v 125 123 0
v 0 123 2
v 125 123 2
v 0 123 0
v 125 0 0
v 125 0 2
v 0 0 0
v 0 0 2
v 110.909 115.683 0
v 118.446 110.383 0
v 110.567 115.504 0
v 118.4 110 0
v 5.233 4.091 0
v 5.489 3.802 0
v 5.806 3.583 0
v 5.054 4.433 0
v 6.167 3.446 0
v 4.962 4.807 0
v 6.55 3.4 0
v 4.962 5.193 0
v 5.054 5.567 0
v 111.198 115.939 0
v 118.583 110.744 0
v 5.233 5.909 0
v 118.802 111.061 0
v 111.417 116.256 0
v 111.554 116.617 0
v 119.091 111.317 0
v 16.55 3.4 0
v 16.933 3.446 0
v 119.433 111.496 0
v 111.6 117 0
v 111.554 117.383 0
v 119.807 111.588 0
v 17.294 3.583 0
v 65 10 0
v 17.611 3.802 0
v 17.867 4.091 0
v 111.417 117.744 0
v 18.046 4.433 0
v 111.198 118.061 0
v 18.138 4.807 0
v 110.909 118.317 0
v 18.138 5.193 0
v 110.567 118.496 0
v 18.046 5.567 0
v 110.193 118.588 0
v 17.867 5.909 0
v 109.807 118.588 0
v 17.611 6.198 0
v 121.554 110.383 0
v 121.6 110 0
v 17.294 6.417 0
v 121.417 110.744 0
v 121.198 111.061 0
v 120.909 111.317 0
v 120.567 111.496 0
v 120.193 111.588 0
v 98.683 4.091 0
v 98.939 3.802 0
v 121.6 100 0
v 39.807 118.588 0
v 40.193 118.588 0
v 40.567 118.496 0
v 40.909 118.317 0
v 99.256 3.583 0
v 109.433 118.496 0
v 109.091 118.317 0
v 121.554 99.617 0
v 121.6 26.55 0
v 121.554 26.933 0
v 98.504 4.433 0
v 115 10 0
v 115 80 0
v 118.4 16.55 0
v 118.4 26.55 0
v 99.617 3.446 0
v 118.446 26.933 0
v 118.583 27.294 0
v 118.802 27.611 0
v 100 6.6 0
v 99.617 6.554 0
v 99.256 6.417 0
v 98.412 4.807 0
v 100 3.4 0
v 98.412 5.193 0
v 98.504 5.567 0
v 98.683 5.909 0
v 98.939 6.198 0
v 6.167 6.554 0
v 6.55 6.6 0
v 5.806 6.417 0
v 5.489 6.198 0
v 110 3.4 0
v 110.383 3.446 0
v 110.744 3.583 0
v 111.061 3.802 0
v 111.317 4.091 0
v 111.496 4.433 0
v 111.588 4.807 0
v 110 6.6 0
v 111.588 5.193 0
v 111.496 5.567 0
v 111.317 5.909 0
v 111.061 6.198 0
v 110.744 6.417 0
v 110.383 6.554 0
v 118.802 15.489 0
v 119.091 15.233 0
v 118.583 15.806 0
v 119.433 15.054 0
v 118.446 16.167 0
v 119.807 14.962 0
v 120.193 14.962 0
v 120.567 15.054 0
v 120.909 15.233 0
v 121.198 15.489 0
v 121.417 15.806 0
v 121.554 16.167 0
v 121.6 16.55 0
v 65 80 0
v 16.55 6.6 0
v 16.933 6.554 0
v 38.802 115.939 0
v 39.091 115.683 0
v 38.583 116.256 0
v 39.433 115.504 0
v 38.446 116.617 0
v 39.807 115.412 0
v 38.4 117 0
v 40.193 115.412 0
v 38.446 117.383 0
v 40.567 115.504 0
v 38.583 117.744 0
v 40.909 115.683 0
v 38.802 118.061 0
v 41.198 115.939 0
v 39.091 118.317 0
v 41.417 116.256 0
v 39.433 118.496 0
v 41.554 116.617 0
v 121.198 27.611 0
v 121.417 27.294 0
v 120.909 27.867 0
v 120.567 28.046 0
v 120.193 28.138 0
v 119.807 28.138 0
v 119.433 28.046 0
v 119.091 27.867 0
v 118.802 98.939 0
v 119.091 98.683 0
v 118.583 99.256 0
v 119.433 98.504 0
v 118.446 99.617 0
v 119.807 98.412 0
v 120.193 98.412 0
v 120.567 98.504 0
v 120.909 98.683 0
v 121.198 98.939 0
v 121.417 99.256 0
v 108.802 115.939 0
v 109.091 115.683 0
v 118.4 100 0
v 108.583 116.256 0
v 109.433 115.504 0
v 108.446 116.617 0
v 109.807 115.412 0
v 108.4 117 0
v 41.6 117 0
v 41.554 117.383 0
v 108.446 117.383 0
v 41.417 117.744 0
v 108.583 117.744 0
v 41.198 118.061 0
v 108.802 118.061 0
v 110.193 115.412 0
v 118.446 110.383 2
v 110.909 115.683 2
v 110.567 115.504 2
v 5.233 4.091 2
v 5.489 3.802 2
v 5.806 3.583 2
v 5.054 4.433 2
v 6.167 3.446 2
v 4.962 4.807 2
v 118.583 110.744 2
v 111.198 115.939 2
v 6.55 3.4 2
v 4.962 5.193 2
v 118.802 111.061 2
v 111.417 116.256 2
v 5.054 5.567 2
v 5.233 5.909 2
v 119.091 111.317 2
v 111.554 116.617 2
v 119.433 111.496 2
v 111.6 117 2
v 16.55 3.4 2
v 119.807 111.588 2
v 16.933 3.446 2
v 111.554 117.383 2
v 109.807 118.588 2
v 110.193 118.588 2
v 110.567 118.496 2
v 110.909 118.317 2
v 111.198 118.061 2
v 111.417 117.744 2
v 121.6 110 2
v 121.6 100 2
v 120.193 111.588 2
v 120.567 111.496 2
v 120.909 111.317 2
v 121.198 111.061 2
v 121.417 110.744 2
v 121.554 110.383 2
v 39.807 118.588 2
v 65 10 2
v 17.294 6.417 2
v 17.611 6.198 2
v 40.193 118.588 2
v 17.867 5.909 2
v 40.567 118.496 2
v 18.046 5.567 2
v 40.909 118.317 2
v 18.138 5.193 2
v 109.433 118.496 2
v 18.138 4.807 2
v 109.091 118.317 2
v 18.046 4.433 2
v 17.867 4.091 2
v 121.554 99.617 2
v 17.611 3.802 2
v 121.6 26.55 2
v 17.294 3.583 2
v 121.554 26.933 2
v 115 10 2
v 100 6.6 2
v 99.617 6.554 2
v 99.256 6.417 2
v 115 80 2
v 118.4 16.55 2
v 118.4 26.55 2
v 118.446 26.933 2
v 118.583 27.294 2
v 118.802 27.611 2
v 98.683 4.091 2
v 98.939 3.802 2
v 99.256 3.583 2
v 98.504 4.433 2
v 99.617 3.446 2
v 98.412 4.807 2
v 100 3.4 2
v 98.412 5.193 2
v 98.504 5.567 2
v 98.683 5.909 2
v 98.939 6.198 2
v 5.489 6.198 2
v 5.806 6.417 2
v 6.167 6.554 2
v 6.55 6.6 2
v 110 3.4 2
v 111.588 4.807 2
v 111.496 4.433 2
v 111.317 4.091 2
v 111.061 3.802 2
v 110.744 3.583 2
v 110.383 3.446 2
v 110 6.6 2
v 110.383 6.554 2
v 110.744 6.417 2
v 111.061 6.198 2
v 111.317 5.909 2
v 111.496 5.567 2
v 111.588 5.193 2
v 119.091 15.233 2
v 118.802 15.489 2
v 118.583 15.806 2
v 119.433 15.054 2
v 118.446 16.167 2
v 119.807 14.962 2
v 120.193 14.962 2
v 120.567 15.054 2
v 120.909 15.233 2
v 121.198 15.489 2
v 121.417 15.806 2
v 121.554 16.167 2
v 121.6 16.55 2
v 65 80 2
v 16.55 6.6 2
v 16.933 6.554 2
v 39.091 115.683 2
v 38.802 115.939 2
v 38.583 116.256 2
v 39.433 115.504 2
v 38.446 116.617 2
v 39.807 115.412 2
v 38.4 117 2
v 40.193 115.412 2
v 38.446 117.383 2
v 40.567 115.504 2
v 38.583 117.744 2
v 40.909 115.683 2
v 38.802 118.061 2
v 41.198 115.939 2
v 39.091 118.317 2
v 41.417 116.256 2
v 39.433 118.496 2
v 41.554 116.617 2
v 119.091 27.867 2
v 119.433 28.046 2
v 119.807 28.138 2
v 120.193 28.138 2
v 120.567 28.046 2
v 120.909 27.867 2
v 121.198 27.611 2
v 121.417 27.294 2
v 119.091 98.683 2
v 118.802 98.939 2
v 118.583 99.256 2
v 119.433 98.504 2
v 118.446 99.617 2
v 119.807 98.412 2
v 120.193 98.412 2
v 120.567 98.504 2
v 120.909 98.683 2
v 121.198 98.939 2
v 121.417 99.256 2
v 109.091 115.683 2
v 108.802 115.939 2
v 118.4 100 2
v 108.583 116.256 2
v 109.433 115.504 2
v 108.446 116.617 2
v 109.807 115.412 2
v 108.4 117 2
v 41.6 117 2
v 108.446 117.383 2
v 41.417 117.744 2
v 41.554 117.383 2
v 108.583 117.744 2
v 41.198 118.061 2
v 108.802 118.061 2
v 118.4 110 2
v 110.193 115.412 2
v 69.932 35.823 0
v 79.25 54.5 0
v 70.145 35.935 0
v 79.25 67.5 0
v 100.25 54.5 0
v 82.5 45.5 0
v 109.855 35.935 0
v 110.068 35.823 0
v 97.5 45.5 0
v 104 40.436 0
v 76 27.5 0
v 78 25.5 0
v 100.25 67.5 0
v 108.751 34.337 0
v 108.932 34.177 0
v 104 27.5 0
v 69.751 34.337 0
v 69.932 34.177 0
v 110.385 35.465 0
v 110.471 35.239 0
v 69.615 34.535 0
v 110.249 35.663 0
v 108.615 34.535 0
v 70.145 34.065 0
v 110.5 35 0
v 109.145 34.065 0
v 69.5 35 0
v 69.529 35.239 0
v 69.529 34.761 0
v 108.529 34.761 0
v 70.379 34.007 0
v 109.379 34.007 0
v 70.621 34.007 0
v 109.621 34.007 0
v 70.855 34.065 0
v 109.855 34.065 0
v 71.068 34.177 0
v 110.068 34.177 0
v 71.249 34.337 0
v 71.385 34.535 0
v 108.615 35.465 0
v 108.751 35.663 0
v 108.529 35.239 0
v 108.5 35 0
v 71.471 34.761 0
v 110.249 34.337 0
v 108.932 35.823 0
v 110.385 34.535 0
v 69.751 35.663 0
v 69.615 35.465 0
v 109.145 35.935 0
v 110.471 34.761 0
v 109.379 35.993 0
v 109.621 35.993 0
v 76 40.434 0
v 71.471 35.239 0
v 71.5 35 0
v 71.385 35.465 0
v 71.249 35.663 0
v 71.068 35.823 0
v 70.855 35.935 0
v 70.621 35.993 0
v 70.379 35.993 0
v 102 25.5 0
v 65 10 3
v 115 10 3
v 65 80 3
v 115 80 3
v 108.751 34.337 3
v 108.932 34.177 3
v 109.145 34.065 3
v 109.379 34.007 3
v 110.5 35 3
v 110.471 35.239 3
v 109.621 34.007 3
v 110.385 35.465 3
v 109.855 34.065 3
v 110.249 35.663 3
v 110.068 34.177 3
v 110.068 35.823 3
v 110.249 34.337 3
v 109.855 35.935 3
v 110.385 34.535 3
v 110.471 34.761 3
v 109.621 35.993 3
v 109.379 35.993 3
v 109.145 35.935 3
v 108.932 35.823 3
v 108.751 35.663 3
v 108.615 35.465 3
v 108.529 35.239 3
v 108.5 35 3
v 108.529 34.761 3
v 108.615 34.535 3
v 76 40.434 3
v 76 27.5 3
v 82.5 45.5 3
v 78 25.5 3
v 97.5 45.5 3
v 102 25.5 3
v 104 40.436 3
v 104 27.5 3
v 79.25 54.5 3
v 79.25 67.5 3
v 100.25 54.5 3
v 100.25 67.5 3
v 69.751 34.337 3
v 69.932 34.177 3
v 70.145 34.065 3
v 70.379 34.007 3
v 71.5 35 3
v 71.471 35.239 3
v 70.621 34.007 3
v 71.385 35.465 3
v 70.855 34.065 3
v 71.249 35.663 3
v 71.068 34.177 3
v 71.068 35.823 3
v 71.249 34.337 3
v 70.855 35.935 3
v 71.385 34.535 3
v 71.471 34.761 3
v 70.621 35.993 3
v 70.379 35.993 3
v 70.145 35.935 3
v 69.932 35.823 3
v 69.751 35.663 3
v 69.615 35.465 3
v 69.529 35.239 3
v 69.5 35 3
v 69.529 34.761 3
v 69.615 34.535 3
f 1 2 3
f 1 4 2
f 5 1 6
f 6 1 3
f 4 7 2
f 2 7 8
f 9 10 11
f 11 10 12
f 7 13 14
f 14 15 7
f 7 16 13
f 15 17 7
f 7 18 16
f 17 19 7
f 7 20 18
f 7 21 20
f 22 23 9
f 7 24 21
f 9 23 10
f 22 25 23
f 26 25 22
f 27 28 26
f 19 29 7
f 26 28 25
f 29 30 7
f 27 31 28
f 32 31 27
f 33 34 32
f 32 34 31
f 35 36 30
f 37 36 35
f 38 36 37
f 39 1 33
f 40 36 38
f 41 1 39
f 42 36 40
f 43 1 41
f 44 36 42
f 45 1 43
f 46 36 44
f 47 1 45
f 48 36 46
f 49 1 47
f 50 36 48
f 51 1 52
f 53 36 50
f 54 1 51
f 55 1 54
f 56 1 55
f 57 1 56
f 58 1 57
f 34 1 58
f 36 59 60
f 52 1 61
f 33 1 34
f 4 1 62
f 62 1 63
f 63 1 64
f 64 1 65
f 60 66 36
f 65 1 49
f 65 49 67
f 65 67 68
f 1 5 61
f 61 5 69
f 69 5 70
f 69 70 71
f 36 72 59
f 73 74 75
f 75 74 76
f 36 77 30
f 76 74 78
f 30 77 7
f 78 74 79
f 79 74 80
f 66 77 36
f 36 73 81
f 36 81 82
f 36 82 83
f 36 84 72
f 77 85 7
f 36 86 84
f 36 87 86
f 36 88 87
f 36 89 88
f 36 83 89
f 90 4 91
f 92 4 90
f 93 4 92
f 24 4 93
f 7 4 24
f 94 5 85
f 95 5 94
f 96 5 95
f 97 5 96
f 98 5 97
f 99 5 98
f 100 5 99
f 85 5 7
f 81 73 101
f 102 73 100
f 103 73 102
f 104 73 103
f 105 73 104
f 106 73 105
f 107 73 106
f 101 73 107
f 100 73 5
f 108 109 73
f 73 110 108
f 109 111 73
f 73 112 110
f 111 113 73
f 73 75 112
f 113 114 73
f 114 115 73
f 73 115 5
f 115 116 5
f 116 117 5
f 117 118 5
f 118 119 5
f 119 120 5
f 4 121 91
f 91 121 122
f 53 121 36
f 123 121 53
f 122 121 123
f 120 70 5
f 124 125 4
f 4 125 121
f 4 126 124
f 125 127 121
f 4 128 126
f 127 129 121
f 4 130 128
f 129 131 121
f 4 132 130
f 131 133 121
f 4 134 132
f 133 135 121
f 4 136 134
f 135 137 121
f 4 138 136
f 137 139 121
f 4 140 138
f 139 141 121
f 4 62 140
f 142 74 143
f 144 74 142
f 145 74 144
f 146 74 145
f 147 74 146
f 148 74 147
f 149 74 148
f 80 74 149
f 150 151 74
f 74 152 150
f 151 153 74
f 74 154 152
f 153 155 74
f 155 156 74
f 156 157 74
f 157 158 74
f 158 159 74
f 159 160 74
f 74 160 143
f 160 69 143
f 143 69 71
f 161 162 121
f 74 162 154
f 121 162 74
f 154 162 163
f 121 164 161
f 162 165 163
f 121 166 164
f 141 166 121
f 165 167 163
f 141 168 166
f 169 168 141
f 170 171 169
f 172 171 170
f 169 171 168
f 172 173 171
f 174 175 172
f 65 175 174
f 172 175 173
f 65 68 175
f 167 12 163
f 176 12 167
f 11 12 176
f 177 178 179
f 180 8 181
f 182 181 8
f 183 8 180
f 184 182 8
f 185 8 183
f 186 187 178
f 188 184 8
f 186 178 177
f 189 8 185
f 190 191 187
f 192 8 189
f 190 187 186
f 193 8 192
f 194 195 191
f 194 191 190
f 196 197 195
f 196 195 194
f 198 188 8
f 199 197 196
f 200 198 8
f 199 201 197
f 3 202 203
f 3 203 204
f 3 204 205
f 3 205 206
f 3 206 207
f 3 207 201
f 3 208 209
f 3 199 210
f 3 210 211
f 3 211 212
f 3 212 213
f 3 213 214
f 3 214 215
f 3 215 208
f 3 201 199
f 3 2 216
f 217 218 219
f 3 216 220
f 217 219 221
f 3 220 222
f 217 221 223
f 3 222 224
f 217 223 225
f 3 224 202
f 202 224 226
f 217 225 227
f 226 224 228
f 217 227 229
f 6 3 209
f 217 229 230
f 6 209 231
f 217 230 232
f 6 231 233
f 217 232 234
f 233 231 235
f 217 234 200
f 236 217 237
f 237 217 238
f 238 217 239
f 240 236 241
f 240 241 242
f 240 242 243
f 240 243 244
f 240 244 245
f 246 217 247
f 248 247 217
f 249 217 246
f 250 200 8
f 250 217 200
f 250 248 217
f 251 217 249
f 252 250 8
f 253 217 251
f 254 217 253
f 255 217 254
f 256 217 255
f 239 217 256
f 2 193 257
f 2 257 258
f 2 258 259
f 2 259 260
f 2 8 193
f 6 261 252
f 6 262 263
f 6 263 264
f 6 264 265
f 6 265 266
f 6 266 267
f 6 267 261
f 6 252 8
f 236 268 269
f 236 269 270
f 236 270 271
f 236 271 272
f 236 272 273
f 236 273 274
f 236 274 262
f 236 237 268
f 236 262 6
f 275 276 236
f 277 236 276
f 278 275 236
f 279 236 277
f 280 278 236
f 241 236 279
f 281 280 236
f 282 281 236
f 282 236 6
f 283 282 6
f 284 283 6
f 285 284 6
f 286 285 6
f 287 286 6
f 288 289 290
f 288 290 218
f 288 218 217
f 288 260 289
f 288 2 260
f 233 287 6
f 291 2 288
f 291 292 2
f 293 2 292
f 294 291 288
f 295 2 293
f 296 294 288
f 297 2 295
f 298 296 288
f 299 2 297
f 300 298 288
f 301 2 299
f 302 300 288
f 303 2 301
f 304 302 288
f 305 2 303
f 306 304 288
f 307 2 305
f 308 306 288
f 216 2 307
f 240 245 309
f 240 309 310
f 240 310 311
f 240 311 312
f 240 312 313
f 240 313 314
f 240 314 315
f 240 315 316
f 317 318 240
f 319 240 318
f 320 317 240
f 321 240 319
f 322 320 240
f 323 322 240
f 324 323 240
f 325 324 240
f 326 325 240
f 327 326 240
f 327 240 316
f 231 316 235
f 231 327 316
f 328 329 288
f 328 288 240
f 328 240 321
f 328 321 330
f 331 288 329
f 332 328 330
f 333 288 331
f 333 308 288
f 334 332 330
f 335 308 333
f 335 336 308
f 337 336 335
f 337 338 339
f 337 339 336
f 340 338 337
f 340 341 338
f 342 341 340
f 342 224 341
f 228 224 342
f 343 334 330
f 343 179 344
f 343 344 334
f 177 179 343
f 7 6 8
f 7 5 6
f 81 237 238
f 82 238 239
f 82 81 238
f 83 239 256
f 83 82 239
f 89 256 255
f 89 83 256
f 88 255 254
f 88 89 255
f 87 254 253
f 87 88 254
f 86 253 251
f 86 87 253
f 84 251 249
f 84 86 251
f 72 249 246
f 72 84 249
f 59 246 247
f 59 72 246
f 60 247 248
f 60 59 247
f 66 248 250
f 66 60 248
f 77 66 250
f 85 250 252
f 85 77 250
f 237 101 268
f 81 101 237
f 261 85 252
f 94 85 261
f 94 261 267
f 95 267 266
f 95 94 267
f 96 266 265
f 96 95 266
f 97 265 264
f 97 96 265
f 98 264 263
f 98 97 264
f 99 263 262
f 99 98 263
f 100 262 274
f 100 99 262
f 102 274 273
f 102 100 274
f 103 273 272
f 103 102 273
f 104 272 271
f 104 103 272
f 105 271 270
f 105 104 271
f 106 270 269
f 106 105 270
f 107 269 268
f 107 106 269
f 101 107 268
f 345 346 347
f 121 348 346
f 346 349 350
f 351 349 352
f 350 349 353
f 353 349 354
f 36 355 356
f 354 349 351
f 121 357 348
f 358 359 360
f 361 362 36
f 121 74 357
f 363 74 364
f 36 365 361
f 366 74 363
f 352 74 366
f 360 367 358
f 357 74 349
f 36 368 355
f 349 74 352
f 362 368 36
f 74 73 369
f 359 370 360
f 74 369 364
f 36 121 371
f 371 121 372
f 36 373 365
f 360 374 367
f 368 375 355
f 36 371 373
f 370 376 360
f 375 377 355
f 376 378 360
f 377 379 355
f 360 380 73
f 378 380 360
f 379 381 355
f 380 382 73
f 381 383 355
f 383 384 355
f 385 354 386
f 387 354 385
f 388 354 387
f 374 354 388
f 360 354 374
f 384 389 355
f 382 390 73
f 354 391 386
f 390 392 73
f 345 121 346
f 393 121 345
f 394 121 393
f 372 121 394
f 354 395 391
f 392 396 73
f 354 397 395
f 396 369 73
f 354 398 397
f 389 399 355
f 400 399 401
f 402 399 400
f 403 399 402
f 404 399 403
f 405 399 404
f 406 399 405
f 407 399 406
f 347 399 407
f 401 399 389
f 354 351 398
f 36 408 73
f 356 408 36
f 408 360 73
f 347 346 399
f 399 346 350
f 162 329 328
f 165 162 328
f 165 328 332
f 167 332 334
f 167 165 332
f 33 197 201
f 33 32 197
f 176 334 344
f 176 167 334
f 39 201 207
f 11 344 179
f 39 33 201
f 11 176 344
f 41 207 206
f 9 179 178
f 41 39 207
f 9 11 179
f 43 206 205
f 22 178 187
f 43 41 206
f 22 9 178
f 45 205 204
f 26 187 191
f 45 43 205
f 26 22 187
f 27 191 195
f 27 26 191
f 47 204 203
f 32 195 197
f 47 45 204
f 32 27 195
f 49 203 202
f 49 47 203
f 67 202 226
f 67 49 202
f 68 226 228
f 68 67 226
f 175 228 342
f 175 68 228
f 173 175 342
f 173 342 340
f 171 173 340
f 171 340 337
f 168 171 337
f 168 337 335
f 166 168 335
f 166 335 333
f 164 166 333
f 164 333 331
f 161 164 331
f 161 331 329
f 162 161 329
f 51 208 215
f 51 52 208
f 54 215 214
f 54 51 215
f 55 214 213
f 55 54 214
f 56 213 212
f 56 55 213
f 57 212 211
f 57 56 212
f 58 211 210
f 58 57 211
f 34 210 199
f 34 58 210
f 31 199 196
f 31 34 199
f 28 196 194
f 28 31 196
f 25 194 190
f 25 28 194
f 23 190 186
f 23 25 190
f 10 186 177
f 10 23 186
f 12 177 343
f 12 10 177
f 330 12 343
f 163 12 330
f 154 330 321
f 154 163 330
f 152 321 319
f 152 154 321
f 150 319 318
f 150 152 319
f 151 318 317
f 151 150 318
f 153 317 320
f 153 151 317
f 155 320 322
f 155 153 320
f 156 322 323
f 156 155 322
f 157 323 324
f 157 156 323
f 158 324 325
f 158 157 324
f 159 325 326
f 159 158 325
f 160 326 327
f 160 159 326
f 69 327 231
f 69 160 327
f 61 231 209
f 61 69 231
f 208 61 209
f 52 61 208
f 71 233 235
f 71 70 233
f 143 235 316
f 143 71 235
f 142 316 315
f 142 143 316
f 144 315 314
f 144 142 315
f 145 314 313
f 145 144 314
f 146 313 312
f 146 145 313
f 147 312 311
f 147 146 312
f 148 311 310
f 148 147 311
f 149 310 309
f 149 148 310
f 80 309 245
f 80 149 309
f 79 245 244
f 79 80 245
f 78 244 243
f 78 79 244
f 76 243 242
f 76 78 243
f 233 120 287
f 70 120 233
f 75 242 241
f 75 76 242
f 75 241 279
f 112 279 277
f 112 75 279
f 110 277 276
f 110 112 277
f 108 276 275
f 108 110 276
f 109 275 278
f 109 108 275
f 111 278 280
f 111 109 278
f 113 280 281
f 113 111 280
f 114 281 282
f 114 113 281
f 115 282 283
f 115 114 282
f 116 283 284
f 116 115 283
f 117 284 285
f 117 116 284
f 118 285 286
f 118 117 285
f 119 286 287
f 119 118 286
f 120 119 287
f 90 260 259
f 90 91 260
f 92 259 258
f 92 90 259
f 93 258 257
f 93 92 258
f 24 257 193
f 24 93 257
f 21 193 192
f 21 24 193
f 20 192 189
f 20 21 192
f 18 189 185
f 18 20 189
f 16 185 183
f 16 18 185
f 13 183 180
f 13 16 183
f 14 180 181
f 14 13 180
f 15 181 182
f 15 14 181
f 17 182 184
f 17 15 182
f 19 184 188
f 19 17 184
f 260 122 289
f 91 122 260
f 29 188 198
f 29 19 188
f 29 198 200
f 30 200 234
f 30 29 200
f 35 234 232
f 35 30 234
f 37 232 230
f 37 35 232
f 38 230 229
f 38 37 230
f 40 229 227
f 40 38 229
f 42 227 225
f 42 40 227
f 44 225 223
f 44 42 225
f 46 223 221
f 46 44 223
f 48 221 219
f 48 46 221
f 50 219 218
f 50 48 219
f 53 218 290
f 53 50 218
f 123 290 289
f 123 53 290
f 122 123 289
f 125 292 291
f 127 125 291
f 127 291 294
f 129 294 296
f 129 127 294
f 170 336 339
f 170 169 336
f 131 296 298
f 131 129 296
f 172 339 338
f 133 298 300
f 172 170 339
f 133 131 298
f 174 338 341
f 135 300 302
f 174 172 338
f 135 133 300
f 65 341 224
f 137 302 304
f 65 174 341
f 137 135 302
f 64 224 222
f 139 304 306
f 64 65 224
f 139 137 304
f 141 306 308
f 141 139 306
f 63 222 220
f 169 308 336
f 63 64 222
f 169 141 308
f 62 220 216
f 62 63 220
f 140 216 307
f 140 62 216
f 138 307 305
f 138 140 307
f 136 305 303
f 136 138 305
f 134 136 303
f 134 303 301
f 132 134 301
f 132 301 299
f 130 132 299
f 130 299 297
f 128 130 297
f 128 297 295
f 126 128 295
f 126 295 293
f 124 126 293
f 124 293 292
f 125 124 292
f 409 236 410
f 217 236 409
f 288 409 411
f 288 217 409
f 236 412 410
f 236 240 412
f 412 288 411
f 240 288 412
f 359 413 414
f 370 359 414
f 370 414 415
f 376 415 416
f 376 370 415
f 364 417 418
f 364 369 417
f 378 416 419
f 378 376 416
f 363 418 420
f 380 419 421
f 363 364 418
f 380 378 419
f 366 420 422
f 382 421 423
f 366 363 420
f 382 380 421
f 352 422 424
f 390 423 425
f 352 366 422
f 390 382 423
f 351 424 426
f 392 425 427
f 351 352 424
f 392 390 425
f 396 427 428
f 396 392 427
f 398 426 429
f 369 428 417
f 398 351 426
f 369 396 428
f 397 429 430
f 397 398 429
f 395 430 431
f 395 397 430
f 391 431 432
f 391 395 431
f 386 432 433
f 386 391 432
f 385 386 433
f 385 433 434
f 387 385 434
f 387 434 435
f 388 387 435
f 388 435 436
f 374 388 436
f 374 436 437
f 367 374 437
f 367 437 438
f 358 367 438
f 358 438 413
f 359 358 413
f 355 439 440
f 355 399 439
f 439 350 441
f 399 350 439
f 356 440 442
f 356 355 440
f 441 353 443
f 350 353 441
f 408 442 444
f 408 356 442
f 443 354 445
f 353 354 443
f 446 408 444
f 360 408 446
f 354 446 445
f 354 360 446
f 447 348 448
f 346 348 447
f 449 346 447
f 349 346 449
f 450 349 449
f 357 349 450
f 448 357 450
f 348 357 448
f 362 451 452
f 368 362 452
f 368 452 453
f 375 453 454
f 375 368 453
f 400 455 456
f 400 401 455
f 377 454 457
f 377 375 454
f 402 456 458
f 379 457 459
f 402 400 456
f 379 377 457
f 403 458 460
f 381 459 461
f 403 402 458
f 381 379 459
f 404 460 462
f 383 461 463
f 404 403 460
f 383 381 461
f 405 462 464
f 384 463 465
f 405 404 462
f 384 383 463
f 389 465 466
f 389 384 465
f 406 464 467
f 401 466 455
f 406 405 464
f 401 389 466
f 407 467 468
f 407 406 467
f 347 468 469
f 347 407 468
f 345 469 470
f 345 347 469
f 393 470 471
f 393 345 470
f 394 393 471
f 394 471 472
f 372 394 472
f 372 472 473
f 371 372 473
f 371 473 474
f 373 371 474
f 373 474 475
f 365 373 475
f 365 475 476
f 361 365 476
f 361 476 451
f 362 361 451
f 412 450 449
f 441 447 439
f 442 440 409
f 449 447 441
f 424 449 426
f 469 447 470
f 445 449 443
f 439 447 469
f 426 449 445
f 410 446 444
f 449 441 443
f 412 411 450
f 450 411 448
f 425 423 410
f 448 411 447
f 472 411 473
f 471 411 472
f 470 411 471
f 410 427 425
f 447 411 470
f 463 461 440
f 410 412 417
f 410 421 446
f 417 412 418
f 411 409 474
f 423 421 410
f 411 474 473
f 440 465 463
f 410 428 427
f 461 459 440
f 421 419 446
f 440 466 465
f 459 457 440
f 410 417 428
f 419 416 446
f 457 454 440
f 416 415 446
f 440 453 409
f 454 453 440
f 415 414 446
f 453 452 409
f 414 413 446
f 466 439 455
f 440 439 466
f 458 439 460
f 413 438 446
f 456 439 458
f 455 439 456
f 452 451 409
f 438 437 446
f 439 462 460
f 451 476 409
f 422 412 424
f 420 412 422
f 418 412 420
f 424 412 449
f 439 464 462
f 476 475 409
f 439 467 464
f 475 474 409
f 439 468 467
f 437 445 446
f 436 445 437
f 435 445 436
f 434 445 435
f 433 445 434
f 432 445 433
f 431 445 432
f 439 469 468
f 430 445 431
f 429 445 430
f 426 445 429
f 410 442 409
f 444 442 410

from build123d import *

# Parameters (mm, degrees)
SKETCH_W        = 125
SKETCH_H        = 123
PAD_DEPTH       = 2
SKETCH001_W     = 50
SKETCH001_H     = 70
PAD001_DEPTH    = 3
POCKET_DEPTH    = 3.001
POCKET001_DEPTH = 3.001
SKETCH004_R     = 1.6
POCKET002_DEPTH = 3.001
SKETCH005_R     = 1.6
POCKET003_DEPTH = 3.001
POCKET004_DEPTH = 3.001
SKETCH007_R     = 1
POCKET005_DEPTH = 3.001
SKETCH008_R     = 1
POCKET006_DEPTH = 3.001
SKETCH009_W     = 21
SKETCH009_H     = 13
POCKET007_DEPTH = 3.001
POCKET008_DEPTH = 3.001
POCKET009_DEPTH = 3.001


with BuildPart() as part:
    # Sketch → Pad (new body)
    with BuildSketch(Plane.XY):
        with Locations((62.5, 61.5)):
            Rectangle(SKETCH_W, SKETCH_H)
    extrude(amount=PAD_DEPTH)

    # Sketch001 → Pad001 (join)
    with BuildSketch(Plane.XY):
        with Locations((90, 45)):
            Rectangle(SKETCH001_W, SKETCH001_H)
    extrude(amount=PAD001_DEPTH)

    # Sketch002 → Pocket (cut, through all)
    with BuildSketch(Plane.XY):
        with BuildLine():
            ThreePointArc((6.55, 6.6), (4.95, 5), (6.55, 3.4))
            Line((6.55, 3.4), (16.55, 3.4))
            ThreePointArc((16.55, 3.4), (18.15, 5), (16.55, 6.6))
            Line((6.55, 6.6), (16.55, 6.6))
        make_face()
    extrude(amount=POCKET_DEPTH, mode=Mode.SUBTRACT)

    # Sketch003 → Pocket001 (cut, through all)
    with BuildSketch(Plane.XY):
        with BuildLine():
            ThreePointArc((121.6, 26.55), (120, 28.15), (118.4, 26.55))
            Line((118.4, 26.55), (118.4, 16.55))
            ThreePointArc((118.4, 16.55), (120, 14.95), (121.6, 16.55))
            Line((121.6, 26.55), (121.6, 16.55))
        make_face()
    extrude(amount=POCKET001_DEPTH, mode=Mode.SUBTRACT)

    # Sketch004 → Pocket002 (cut, through all)
    with BuildSketch(Plane.XY):
        with Locations((110, 117)):
            Circle(SKETCH004_R)
    extrude(amount=POCKET002_DEPTH, mode=Mode.SUBTRACT)

    # Sketch005 → Pocket003 (cut, through all)
    with BuildSketch(Plane.XY):
        with Locations((40, 117)):
            Circle(SKETCH005_R)
    extrude(amount=POCKET003_DEPTH, mode=Mode.SUBTRACT)

    # Sketch006 → Pocket004 (cut, through all)
    with BuildSketch(Plane.XY):
        Polygon((76, 40.43372), (82.5, 45.5), (97.5, 45.5), (104, 40.435902), (104, 27.5), (102, 25.5), (78, 25.5), (76, 27.5), align=None)
    extrude(amount=POCKET004_DEPTH, mode=Mode.SUBTRACT)

    # Sketch007 → Pocket005 (cut, through all)
    with BuildSketch(Plane.XY):
        with Locations((70.5, 35)):
            Circle(SKETCH007_R)
    extrude(amount=POCKET005_DEPTH, mode=Mode.SUBTRACT)

    # Sketch008 → Pocket006 (cut, through all)
    with BuildSketch(Plane.XY):
        with Locations((109.5, 35)):
            Circle(SKETCH008_R)
    extrude(amount=POCKET006_DEPTH, mode=Mode.SUBTRACT)

    # Sketch009 → Pocket007 (cut, through all)
    with BuildSketch(Plane.XY):
        with Locations((89.75, 61)):
            Rectangle(SKETCH009_W, SKETCH009_H)
    extrude(amount=POCKET007_DEPTH, mode=Mode.SUBTRACT)

    # Sketch010 → Pocket008 (cut, through all)
    with BuildSketch(Plane.XY):
        with BuildLine():
            ThreePointArc((100, 6.6), (98.4, 5), (100, 3.4))
            Line((100, 3.4), (110, 3.4))
            ThreePointArc((110, 3.4), (111.6, 5), (110, 6.6))
            Line((100, 6.6), (110, 6.6))
        make_face()
    extrude(amount=POCKET008_DEPTH, mode=Mode.SUBTRACT)

    # Sketch011 → Pocket009 (cut, through all)
    with BuildSketch(Plane.XY):
        with BuildLine():
            ThreePointArc((121.6, 110), (120, 111.6), (118.4, 110))
            Line((118.4, 110), (118.4, 100))
            ThreePointArc((118.4, 100), (120, 98.4), (121.6, 100))
            Line((121.6, 110), (121.6, 100))
        make_face()
    extrude(amount=POCKET009_DEPTH, mode=Mode.SUBTRACT)


solid = part.part
